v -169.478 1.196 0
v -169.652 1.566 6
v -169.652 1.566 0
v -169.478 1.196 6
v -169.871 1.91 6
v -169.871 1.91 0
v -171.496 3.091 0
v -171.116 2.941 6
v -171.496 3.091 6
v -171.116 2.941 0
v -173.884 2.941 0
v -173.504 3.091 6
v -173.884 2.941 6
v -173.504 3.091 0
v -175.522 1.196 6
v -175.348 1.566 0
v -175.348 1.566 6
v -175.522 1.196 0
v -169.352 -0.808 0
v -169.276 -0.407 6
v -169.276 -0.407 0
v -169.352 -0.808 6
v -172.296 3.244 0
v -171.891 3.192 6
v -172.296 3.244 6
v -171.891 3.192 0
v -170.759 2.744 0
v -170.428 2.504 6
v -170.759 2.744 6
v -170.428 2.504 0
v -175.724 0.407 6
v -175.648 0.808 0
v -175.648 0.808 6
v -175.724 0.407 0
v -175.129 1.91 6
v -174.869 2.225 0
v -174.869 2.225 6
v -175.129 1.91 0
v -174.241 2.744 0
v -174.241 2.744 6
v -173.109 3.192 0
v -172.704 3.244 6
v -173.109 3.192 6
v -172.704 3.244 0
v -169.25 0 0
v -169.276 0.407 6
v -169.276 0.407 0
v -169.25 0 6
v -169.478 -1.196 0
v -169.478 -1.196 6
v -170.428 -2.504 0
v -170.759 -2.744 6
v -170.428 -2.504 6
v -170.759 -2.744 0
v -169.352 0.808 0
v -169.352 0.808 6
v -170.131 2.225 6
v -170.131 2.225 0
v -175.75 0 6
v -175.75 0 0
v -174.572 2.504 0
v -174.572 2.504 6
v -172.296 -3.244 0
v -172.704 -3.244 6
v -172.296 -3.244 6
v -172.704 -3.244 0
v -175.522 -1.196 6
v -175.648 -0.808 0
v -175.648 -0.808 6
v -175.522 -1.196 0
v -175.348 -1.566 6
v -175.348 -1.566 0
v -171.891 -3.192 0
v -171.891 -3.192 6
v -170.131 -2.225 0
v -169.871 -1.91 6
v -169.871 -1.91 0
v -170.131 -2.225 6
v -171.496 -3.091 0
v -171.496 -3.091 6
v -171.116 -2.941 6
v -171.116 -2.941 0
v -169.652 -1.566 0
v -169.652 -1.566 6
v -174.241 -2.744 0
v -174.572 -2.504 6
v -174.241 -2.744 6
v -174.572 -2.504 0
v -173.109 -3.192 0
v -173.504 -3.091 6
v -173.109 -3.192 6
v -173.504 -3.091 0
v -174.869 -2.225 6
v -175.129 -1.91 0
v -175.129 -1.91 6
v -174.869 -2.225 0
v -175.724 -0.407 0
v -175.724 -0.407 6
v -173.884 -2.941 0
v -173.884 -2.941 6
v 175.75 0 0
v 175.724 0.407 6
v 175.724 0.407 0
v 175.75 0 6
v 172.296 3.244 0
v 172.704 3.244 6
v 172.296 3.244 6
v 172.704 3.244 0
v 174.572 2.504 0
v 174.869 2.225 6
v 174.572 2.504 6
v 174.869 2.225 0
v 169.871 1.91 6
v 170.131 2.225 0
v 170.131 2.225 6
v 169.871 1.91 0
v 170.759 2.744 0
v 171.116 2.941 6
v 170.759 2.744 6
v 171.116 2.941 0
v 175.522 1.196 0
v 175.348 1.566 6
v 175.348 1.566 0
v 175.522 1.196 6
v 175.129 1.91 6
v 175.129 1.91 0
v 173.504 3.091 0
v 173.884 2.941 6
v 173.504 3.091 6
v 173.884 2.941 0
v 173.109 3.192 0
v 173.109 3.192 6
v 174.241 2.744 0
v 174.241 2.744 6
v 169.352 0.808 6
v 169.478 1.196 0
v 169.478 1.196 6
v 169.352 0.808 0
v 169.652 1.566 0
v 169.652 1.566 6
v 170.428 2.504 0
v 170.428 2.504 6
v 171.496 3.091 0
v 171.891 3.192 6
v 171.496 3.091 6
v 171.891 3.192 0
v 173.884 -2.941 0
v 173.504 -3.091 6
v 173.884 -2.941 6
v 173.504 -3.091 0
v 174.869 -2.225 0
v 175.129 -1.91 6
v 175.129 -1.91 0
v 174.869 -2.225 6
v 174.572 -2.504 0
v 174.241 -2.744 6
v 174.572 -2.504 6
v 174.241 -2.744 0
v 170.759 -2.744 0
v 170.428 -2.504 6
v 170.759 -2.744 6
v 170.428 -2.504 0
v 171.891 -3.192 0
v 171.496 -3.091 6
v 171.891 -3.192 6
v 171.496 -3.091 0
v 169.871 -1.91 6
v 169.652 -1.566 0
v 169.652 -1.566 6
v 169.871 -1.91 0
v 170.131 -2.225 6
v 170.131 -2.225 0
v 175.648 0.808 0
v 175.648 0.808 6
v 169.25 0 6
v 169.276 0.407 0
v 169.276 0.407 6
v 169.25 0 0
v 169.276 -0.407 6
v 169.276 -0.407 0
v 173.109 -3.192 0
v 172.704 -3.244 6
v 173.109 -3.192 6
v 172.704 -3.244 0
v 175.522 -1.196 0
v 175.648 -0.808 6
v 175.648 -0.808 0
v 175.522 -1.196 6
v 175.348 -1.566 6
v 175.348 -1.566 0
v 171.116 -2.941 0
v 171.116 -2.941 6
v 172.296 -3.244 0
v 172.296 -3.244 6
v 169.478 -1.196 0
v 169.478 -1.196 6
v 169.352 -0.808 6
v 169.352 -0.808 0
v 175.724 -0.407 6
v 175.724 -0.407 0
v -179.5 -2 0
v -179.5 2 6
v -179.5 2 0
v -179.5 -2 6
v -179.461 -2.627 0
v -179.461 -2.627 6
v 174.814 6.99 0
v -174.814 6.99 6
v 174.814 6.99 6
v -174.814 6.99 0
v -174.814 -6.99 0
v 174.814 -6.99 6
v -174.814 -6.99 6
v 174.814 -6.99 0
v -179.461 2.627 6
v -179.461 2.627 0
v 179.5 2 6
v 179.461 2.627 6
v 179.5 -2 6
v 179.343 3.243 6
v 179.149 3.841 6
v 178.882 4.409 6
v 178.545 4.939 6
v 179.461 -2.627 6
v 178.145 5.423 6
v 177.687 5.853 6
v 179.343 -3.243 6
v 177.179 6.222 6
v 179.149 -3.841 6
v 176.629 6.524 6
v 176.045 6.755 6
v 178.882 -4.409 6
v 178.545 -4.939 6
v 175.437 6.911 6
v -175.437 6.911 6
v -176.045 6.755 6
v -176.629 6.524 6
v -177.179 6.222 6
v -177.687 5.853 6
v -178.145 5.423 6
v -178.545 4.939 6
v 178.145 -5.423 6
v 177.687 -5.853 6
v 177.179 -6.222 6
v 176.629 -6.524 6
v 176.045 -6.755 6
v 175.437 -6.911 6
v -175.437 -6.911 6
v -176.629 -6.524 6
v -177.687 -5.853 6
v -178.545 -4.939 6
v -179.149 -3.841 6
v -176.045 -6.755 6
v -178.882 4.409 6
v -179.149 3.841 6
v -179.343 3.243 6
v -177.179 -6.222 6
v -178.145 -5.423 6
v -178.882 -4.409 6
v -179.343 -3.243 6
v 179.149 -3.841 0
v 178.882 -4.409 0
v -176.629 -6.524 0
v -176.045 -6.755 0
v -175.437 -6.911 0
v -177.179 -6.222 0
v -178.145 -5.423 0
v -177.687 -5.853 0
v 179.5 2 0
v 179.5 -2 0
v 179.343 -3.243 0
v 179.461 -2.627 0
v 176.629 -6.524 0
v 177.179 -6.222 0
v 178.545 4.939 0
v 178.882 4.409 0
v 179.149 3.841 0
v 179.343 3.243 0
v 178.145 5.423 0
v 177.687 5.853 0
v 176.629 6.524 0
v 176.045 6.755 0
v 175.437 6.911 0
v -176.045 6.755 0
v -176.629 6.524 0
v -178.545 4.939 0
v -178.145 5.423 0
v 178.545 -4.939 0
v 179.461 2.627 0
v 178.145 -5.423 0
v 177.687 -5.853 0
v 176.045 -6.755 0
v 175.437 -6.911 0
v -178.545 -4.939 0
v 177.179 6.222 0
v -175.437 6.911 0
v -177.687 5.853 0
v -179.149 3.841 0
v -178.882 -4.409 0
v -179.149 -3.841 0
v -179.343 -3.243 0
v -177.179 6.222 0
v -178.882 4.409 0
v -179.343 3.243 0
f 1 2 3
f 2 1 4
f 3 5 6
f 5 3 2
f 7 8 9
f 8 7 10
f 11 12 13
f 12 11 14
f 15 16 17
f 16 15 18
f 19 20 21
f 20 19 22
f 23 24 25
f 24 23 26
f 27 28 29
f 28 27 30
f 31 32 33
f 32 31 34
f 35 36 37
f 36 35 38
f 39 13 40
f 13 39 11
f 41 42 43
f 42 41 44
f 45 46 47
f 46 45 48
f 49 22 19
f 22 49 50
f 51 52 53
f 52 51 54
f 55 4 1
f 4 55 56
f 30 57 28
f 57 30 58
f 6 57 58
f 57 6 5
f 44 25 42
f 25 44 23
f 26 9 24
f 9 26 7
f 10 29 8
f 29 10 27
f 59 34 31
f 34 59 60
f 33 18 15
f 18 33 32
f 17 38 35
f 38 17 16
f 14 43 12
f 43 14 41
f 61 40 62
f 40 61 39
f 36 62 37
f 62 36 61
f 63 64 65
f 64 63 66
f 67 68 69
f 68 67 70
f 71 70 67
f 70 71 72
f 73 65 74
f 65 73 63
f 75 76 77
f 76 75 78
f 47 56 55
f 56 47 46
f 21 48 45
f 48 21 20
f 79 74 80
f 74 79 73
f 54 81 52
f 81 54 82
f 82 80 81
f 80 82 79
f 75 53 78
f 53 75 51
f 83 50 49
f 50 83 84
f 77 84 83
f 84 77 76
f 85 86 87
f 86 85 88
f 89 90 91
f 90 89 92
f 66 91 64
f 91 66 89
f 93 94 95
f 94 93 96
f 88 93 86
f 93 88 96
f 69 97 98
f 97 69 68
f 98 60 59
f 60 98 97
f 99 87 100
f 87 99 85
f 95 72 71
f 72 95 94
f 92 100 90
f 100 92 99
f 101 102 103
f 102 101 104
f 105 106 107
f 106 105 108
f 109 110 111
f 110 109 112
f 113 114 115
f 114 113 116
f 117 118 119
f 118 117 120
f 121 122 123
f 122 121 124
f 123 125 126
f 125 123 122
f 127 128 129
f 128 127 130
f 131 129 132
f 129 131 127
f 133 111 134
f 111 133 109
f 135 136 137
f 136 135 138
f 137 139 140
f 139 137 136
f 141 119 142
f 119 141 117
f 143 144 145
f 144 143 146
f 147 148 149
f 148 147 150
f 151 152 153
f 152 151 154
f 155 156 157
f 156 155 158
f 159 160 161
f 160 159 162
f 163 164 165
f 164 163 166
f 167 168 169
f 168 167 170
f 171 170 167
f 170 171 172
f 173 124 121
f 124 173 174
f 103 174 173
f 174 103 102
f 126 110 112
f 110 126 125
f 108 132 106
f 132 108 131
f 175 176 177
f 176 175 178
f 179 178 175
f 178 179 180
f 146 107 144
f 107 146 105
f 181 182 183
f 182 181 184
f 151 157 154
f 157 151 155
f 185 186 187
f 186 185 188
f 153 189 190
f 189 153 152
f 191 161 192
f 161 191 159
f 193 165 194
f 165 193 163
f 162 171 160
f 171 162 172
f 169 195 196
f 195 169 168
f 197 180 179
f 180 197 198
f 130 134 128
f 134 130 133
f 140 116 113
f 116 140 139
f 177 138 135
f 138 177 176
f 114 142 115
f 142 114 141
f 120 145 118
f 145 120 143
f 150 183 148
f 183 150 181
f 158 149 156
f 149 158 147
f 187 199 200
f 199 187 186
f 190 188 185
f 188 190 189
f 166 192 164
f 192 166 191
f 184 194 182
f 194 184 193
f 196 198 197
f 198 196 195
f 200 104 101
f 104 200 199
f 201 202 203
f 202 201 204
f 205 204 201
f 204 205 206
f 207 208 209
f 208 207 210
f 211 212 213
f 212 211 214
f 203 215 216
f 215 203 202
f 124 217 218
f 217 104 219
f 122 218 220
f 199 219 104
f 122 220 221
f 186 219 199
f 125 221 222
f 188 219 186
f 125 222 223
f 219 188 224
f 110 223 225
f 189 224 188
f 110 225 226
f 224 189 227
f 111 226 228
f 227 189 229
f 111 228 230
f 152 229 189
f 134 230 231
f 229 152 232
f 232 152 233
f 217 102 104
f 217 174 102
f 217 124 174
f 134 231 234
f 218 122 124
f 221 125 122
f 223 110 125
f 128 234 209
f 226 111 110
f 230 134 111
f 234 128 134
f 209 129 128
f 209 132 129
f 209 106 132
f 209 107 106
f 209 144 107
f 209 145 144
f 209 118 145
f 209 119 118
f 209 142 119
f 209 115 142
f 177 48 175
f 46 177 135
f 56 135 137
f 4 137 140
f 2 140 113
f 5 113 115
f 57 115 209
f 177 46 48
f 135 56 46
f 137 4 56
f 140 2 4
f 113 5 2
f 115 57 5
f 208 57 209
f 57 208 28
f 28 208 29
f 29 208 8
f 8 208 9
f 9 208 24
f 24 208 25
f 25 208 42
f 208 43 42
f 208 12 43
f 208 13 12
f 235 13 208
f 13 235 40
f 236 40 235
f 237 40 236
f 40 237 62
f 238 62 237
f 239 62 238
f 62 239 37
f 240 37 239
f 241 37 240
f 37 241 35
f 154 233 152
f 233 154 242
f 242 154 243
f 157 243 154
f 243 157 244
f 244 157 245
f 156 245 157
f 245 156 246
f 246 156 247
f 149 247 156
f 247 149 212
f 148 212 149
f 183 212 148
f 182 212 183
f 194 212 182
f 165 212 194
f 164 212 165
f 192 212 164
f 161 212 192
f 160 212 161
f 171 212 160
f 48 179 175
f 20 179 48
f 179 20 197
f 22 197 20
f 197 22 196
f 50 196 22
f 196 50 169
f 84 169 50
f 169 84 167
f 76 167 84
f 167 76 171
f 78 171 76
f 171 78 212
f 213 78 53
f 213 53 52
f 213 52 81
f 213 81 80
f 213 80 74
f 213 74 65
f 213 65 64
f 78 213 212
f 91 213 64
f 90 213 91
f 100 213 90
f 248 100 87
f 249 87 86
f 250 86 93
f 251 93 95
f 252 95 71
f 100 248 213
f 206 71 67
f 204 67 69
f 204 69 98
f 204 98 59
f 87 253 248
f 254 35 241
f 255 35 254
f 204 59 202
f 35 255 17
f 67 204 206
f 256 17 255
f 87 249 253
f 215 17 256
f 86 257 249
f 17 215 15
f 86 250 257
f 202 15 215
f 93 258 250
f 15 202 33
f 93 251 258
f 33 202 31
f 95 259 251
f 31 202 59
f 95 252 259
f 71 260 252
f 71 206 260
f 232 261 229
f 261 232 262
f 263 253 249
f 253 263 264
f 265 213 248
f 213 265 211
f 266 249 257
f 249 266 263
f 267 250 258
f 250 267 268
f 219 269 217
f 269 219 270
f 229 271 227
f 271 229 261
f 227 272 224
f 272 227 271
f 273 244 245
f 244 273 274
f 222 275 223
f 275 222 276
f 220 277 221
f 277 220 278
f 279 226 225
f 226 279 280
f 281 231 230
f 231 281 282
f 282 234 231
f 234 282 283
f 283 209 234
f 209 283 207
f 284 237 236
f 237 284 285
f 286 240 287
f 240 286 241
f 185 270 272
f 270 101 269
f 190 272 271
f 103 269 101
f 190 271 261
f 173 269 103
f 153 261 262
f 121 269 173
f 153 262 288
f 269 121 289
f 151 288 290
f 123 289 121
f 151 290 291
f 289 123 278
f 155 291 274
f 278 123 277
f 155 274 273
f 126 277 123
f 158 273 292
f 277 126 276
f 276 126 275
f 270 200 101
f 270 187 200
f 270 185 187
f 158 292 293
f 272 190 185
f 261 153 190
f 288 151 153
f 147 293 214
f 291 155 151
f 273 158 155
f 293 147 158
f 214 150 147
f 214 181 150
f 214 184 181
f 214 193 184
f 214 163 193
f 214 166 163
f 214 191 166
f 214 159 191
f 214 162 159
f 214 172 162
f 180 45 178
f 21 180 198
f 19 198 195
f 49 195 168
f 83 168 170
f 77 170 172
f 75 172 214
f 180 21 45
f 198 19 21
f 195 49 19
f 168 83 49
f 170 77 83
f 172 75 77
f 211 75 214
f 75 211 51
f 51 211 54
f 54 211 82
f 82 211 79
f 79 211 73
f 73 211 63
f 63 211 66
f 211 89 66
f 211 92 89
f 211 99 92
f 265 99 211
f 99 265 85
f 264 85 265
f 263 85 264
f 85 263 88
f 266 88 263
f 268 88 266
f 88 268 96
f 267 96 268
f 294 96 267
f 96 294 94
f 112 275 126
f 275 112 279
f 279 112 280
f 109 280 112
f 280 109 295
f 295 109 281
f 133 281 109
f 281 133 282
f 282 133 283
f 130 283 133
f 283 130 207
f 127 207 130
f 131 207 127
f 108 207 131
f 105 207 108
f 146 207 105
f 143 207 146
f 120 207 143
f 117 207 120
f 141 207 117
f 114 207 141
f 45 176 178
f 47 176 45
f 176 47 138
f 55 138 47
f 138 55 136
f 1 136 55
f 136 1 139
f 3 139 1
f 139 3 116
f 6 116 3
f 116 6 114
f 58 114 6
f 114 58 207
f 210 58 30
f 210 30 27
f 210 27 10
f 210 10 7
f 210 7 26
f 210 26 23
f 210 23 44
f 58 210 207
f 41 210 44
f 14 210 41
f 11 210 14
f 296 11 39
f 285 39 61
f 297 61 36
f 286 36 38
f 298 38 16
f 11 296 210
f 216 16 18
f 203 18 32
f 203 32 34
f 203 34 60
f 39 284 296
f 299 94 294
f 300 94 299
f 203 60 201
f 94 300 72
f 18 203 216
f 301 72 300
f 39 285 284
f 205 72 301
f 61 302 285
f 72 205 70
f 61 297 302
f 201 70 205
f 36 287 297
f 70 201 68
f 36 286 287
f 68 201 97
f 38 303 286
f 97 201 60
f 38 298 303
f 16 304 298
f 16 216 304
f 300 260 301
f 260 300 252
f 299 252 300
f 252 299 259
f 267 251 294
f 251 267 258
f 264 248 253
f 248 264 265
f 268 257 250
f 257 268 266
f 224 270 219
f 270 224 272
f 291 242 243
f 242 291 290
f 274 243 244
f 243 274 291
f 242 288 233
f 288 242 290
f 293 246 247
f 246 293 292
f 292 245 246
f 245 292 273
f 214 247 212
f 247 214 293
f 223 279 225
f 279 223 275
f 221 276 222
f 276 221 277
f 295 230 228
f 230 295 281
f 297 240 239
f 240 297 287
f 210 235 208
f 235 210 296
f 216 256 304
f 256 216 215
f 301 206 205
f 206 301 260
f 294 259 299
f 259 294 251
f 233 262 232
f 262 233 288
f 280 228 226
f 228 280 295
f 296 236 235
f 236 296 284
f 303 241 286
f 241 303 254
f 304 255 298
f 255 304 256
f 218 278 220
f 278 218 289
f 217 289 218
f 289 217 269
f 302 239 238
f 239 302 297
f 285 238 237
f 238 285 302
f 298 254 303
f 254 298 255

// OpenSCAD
$fn = 50;


difference() {
	union() {
		hull() {
			translate(v = [-174.5000000000, 2.0000000000, 0]) {
				cylinder(h = 6, r = 5);
			}
			translate(v = [174.5000000000, 2.0000000000, 0]) {
				cylinder(h = 6, r = 5);
			}
			translate(v = [-174.5000000000, -2.0000000000, 0]) {
				cylinder(h = 6, r = 5);
			}
			translate(v = [174.5000000000, -2.0000000000, 0]) {
				cylinder(h = 6, r = 5);
			}
		}
	}
	union() {
		translate(v = [-172.5000000000, 0.0000000000, 0]) {
			cylinder(h = 6, r = 3.2500000000);
		}
		translate(v = [172.5000000000, 0.0000000000, 0]) {
			cylinder(h = 6, r = 3.2500000000);
		}
		translate(v = [-172.5000000000, 0.0000000000, 0]) {
			cylinder(h = 6, r = 1.8000000000);
		}
		translate(v = [172.5000000000, 0.0000000000, 0]) {
			cylinder(h = 6, r = 1.8000000000);
		}
		translate(v = [-172.5000000000, 0.0000000000, 0]) {
			cylinder(h = 6, r = 1.8000000000);
		}
		translate(v = [172.5000000000, 0.0000000000, 0]) {
			cylinder(h = 6, r = 1.8000000000);
		}
		translate(v = [-172.5000000000, 0.0000000000, 0]) {
			cylinder(h = 6, r = 1.8000000000);
		}
		translate(v = [172.5000000000, 0.0000000000, 0]) {
			cylinder(h = 6, r = 1.8000000000);
		}
	}
}
